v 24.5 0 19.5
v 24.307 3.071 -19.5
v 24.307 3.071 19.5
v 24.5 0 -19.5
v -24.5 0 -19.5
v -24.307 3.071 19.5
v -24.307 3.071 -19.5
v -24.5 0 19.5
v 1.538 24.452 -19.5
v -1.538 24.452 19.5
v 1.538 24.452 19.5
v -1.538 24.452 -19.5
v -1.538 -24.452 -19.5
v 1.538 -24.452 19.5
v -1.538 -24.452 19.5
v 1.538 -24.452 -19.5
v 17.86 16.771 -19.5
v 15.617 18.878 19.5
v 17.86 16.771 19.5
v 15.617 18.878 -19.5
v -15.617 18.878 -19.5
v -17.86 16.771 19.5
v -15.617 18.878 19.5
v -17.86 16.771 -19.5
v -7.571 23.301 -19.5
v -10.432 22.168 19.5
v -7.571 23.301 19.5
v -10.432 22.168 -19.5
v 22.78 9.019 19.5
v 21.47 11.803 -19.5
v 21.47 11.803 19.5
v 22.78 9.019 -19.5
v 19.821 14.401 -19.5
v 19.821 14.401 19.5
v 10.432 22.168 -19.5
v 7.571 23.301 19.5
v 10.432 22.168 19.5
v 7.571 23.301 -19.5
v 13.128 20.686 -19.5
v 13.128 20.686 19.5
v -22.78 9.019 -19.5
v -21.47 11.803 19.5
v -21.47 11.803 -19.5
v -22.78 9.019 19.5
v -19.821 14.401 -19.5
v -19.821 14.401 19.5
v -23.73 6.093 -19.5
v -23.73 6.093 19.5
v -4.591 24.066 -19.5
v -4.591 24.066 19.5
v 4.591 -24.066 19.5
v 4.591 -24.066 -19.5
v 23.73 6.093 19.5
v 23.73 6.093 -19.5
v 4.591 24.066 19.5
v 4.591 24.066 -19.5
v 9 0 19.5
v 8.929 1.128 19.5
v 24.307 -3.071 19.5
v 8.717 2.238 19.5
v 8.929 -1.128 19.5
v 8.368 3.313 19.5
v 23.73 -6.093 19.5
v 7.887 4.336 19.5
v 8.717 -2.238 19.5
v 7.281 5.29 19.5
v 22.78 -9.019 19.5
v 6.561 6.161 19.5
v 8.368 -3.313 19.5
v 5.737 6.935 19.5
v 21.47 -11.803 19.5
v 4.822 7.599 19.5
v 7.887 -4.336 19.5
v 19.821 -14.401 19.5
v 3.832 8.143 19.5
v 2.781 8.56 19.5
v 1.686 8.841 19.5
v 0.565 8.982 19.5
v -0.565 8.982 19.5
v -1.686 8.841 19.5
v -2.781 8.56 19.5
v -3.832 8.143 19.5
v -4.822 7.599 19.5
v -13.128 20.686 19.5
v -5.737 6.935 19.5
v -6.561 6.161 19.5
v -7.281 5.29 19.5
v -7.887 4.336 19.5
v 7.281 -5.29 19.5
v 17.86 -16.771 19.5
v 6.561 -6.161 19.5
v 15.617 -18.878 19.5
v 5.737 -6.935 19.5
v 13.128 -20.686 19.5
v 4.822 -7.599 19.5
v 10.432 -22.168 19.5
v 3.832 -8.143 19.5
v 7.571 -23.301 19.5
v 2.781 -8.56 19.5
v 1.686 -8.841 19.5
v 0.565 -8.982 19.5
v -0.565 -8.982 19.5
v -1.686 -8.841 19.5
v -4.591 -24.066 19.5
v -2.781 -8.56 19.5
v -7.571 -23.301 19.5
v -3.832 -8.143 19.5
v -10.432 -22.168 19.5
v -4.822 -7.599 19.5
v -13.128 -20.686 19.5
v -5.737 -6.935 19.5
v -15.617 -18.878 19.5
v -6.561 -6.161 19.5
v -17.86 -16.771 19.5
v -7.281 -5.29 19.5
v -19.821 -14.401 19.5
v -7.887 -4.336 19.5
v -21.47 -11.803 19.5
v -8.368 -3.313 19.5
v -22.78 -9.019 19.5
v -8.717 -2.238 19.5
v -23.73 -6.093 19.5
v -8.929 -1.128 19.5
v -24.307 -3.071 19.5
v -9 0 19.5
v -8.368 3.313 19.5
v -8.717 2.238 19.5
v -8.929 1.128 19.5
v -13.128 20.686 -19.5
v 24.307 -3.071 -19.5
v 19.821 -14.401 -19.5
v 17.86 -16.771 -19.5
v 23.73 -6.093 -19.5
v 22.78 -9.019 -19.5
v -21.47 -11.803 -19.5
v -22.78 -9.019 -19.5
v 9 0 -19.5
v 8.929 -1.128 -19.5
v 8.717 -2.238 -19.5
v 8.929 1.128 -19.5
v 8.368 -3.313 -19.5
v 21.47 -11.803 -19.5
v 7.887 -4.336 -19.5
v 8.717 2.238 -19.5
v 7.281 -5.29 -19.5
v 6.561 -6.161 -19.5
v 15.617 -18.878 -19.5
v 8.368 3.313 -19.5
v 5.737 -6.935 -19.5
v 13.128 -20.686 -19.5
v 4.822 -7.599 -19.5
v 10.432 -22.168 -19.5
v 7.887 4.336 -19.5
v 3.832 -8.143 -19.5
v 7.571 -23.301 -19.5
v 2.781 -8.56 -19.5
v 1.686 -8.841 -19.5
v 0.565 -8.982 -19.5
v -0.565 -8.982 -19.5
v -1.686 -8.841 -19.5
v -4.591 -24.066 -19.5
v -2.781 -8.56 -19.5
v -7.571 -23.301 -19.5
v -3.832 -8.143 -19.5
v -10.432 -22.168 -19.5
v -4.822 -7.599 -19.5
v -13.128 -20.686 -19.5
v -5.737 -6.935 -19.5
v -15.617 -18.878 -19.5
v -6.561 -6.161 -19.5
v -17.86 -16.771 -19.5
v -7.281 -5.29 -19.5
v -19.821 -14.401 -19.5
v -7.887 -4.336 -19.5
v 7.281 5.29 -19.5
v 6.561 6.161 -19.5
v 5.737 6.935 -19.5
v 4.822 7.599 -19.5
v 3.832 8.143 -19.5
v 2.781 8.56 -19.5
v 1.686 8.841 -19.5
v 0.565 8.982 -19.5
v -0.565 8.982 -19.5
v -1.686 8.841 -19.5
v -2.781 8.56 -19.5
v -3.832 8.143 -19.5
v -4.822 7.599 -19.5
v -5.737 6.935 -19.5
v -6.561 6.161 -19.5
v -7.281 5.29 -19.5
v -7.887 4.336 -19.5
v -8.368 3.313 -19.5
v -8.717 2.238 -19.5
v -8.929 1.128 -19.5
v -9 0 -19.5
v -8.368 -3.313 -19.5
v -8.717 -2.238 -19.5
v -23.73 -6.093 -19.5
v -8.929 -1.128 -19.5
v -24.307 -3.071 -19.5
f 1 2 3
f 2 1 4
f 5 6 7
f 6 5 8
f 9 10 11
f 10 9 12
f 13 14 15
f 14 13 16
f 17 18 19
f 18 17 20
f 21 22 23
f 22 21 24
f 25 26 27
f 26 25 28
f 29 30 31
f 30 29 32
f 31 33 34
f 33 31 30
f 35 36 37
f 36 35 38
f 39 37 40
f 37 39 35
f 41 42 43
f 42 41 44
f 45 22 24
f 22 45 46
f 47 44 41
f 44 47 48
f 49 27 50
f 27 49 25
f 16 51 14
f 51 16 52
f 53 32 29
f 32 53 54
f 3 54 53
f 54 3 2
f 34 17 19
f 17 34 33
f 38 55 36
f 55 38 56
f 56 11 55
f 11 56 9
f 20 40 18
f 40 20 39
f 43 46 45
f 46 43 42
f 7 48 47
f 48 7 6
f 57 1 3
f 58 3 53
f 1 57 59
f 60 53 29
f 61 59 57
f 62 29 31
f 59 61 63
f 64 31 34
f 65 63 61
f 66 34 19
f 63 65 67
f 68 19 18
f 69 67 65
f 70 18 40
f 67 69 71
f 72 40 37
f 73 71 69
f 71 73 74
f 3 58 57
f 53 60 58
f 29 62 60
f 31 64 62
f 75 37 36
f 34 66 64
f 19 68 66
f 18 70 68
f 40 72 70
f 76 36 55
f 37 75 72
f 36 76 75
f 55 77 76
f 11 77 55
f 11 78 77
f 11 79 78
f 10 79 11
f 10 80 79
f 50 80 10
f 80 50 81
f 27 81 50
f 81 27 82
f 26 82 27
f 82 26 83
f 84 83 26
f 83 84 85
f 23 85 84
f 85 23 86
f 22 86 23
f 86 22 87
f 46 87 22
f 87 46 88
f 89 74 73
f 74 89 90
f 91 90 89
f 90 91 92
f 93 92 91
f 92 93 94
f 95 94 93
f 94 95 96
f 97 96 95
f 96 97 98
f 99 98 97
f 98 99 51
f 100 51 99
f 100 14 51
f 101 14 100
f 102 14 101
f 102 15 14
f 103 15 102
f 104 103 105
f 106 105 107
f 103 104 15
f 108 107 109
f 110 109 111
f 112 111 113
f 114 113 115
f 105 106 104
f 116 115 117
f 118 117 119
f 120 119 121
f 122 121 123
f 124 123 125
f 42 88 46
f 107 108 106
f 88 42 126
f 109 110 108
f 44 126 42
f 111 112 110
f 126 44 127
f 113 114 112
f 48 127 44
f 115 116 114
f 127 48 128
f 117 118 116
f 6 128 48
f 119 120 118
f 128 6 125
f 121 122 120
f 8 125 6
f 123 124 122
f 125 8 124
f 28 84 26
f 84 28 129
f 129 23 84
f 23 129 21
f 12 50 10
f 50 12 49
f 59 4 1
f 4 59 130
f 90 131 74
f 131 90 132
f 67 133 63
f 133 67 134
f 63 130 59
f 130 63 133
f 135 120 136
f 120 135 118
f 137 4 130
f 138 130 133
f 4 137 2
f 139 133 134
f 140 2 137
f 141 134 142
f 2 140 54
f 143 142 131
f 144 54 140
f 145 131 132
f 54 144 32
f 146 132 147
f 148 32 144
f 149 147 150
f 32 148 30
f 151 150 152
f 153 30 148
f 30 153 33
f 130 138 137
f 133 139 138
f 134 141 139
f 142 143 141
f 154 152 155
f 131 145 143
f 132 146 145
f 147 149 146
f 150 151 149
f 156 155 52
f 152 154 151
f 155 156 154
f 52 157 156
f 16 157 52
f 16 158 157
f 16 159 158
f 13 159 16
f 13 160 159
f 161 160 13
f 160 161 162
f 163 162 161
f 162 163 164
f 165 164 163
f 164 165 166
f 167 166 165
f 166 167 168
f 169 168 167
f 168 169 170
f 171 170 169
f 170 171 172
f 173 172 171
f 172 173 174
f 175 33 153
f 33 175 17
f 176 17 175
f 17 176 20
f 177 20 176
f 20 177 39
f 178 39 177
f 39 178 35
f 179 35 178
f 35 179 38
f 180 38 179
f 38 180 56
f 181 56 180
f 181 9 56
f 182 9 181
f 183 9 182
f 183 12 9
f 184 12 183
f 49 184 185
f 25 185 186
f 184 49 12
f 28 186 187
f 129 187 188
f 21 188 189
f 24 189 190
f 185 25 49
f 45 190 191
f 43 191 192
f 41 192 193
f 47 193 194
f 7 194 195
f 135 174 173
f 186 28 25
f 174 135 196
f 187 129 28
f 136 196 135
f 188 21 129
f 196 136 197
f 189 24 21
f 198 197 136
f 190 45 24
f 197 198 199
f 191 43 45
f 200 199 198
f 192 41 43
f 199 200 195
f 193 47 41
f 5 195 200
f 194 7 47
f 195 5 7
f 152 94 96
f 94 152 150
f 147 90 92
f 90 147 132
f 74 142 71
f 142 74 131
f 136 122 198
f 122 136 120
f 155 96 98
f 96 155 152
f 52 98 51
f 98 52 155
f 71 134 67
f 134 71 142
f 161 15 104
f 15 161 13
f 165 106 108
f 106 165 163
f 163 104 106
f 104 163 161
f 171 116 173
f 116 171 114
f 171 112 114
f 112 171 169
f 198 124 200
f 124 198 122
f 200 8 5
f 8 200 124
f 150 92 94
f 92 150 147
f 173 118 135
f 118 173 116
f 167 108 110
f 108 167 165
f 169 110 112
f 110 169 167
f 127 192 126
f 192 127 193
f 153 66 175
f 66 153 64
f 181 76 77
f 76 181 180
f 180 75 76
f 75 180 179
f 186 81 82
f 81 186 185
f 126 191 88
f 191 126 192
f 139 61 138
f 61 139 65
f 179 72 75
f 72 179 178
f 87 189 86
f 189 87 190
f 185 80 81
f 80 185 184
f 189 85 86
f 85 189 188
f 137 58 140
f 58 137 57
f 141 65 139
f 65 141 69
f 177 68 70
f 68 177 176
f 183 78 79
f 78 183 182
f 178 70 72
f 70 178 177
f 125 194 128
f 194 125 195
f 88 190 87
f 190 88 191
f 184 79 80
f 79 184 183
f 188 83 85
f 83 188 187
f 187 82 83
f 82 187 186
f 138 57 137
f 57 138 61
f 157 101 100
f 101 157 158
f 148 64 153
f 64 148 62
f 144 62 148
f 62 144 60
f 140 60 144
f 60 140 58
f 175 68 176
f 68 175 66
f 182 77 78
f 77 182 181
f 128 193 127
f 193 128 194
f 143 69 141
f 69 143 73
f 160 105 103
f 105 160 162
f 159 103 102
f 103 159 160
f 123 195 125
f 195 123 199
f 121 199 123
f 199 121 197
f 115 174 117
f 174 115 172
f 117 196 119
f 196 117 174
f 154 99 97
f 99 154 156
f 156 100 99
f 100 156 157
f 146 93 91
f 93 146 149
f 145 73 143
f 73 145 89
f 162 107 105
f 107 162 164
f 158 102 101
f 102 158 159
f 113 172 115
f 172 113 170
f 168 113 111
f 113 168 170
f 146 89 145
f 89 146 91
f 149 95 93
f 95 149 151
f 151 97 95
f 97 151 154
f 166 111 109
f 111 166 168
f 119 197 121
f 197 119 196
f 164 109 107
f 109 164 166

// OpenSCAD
$fn = 50;


difference() {
	union() {
		translate(v = [0, 0, -19.5000000000]) {
			cylinder(h = 39, r = 24.5000000000);
		}
	}
	union() {
		translate(v = [0, 0, -100.0000000000]) {
			cylinder(h = 200, r = 9);
		}
	}
}
